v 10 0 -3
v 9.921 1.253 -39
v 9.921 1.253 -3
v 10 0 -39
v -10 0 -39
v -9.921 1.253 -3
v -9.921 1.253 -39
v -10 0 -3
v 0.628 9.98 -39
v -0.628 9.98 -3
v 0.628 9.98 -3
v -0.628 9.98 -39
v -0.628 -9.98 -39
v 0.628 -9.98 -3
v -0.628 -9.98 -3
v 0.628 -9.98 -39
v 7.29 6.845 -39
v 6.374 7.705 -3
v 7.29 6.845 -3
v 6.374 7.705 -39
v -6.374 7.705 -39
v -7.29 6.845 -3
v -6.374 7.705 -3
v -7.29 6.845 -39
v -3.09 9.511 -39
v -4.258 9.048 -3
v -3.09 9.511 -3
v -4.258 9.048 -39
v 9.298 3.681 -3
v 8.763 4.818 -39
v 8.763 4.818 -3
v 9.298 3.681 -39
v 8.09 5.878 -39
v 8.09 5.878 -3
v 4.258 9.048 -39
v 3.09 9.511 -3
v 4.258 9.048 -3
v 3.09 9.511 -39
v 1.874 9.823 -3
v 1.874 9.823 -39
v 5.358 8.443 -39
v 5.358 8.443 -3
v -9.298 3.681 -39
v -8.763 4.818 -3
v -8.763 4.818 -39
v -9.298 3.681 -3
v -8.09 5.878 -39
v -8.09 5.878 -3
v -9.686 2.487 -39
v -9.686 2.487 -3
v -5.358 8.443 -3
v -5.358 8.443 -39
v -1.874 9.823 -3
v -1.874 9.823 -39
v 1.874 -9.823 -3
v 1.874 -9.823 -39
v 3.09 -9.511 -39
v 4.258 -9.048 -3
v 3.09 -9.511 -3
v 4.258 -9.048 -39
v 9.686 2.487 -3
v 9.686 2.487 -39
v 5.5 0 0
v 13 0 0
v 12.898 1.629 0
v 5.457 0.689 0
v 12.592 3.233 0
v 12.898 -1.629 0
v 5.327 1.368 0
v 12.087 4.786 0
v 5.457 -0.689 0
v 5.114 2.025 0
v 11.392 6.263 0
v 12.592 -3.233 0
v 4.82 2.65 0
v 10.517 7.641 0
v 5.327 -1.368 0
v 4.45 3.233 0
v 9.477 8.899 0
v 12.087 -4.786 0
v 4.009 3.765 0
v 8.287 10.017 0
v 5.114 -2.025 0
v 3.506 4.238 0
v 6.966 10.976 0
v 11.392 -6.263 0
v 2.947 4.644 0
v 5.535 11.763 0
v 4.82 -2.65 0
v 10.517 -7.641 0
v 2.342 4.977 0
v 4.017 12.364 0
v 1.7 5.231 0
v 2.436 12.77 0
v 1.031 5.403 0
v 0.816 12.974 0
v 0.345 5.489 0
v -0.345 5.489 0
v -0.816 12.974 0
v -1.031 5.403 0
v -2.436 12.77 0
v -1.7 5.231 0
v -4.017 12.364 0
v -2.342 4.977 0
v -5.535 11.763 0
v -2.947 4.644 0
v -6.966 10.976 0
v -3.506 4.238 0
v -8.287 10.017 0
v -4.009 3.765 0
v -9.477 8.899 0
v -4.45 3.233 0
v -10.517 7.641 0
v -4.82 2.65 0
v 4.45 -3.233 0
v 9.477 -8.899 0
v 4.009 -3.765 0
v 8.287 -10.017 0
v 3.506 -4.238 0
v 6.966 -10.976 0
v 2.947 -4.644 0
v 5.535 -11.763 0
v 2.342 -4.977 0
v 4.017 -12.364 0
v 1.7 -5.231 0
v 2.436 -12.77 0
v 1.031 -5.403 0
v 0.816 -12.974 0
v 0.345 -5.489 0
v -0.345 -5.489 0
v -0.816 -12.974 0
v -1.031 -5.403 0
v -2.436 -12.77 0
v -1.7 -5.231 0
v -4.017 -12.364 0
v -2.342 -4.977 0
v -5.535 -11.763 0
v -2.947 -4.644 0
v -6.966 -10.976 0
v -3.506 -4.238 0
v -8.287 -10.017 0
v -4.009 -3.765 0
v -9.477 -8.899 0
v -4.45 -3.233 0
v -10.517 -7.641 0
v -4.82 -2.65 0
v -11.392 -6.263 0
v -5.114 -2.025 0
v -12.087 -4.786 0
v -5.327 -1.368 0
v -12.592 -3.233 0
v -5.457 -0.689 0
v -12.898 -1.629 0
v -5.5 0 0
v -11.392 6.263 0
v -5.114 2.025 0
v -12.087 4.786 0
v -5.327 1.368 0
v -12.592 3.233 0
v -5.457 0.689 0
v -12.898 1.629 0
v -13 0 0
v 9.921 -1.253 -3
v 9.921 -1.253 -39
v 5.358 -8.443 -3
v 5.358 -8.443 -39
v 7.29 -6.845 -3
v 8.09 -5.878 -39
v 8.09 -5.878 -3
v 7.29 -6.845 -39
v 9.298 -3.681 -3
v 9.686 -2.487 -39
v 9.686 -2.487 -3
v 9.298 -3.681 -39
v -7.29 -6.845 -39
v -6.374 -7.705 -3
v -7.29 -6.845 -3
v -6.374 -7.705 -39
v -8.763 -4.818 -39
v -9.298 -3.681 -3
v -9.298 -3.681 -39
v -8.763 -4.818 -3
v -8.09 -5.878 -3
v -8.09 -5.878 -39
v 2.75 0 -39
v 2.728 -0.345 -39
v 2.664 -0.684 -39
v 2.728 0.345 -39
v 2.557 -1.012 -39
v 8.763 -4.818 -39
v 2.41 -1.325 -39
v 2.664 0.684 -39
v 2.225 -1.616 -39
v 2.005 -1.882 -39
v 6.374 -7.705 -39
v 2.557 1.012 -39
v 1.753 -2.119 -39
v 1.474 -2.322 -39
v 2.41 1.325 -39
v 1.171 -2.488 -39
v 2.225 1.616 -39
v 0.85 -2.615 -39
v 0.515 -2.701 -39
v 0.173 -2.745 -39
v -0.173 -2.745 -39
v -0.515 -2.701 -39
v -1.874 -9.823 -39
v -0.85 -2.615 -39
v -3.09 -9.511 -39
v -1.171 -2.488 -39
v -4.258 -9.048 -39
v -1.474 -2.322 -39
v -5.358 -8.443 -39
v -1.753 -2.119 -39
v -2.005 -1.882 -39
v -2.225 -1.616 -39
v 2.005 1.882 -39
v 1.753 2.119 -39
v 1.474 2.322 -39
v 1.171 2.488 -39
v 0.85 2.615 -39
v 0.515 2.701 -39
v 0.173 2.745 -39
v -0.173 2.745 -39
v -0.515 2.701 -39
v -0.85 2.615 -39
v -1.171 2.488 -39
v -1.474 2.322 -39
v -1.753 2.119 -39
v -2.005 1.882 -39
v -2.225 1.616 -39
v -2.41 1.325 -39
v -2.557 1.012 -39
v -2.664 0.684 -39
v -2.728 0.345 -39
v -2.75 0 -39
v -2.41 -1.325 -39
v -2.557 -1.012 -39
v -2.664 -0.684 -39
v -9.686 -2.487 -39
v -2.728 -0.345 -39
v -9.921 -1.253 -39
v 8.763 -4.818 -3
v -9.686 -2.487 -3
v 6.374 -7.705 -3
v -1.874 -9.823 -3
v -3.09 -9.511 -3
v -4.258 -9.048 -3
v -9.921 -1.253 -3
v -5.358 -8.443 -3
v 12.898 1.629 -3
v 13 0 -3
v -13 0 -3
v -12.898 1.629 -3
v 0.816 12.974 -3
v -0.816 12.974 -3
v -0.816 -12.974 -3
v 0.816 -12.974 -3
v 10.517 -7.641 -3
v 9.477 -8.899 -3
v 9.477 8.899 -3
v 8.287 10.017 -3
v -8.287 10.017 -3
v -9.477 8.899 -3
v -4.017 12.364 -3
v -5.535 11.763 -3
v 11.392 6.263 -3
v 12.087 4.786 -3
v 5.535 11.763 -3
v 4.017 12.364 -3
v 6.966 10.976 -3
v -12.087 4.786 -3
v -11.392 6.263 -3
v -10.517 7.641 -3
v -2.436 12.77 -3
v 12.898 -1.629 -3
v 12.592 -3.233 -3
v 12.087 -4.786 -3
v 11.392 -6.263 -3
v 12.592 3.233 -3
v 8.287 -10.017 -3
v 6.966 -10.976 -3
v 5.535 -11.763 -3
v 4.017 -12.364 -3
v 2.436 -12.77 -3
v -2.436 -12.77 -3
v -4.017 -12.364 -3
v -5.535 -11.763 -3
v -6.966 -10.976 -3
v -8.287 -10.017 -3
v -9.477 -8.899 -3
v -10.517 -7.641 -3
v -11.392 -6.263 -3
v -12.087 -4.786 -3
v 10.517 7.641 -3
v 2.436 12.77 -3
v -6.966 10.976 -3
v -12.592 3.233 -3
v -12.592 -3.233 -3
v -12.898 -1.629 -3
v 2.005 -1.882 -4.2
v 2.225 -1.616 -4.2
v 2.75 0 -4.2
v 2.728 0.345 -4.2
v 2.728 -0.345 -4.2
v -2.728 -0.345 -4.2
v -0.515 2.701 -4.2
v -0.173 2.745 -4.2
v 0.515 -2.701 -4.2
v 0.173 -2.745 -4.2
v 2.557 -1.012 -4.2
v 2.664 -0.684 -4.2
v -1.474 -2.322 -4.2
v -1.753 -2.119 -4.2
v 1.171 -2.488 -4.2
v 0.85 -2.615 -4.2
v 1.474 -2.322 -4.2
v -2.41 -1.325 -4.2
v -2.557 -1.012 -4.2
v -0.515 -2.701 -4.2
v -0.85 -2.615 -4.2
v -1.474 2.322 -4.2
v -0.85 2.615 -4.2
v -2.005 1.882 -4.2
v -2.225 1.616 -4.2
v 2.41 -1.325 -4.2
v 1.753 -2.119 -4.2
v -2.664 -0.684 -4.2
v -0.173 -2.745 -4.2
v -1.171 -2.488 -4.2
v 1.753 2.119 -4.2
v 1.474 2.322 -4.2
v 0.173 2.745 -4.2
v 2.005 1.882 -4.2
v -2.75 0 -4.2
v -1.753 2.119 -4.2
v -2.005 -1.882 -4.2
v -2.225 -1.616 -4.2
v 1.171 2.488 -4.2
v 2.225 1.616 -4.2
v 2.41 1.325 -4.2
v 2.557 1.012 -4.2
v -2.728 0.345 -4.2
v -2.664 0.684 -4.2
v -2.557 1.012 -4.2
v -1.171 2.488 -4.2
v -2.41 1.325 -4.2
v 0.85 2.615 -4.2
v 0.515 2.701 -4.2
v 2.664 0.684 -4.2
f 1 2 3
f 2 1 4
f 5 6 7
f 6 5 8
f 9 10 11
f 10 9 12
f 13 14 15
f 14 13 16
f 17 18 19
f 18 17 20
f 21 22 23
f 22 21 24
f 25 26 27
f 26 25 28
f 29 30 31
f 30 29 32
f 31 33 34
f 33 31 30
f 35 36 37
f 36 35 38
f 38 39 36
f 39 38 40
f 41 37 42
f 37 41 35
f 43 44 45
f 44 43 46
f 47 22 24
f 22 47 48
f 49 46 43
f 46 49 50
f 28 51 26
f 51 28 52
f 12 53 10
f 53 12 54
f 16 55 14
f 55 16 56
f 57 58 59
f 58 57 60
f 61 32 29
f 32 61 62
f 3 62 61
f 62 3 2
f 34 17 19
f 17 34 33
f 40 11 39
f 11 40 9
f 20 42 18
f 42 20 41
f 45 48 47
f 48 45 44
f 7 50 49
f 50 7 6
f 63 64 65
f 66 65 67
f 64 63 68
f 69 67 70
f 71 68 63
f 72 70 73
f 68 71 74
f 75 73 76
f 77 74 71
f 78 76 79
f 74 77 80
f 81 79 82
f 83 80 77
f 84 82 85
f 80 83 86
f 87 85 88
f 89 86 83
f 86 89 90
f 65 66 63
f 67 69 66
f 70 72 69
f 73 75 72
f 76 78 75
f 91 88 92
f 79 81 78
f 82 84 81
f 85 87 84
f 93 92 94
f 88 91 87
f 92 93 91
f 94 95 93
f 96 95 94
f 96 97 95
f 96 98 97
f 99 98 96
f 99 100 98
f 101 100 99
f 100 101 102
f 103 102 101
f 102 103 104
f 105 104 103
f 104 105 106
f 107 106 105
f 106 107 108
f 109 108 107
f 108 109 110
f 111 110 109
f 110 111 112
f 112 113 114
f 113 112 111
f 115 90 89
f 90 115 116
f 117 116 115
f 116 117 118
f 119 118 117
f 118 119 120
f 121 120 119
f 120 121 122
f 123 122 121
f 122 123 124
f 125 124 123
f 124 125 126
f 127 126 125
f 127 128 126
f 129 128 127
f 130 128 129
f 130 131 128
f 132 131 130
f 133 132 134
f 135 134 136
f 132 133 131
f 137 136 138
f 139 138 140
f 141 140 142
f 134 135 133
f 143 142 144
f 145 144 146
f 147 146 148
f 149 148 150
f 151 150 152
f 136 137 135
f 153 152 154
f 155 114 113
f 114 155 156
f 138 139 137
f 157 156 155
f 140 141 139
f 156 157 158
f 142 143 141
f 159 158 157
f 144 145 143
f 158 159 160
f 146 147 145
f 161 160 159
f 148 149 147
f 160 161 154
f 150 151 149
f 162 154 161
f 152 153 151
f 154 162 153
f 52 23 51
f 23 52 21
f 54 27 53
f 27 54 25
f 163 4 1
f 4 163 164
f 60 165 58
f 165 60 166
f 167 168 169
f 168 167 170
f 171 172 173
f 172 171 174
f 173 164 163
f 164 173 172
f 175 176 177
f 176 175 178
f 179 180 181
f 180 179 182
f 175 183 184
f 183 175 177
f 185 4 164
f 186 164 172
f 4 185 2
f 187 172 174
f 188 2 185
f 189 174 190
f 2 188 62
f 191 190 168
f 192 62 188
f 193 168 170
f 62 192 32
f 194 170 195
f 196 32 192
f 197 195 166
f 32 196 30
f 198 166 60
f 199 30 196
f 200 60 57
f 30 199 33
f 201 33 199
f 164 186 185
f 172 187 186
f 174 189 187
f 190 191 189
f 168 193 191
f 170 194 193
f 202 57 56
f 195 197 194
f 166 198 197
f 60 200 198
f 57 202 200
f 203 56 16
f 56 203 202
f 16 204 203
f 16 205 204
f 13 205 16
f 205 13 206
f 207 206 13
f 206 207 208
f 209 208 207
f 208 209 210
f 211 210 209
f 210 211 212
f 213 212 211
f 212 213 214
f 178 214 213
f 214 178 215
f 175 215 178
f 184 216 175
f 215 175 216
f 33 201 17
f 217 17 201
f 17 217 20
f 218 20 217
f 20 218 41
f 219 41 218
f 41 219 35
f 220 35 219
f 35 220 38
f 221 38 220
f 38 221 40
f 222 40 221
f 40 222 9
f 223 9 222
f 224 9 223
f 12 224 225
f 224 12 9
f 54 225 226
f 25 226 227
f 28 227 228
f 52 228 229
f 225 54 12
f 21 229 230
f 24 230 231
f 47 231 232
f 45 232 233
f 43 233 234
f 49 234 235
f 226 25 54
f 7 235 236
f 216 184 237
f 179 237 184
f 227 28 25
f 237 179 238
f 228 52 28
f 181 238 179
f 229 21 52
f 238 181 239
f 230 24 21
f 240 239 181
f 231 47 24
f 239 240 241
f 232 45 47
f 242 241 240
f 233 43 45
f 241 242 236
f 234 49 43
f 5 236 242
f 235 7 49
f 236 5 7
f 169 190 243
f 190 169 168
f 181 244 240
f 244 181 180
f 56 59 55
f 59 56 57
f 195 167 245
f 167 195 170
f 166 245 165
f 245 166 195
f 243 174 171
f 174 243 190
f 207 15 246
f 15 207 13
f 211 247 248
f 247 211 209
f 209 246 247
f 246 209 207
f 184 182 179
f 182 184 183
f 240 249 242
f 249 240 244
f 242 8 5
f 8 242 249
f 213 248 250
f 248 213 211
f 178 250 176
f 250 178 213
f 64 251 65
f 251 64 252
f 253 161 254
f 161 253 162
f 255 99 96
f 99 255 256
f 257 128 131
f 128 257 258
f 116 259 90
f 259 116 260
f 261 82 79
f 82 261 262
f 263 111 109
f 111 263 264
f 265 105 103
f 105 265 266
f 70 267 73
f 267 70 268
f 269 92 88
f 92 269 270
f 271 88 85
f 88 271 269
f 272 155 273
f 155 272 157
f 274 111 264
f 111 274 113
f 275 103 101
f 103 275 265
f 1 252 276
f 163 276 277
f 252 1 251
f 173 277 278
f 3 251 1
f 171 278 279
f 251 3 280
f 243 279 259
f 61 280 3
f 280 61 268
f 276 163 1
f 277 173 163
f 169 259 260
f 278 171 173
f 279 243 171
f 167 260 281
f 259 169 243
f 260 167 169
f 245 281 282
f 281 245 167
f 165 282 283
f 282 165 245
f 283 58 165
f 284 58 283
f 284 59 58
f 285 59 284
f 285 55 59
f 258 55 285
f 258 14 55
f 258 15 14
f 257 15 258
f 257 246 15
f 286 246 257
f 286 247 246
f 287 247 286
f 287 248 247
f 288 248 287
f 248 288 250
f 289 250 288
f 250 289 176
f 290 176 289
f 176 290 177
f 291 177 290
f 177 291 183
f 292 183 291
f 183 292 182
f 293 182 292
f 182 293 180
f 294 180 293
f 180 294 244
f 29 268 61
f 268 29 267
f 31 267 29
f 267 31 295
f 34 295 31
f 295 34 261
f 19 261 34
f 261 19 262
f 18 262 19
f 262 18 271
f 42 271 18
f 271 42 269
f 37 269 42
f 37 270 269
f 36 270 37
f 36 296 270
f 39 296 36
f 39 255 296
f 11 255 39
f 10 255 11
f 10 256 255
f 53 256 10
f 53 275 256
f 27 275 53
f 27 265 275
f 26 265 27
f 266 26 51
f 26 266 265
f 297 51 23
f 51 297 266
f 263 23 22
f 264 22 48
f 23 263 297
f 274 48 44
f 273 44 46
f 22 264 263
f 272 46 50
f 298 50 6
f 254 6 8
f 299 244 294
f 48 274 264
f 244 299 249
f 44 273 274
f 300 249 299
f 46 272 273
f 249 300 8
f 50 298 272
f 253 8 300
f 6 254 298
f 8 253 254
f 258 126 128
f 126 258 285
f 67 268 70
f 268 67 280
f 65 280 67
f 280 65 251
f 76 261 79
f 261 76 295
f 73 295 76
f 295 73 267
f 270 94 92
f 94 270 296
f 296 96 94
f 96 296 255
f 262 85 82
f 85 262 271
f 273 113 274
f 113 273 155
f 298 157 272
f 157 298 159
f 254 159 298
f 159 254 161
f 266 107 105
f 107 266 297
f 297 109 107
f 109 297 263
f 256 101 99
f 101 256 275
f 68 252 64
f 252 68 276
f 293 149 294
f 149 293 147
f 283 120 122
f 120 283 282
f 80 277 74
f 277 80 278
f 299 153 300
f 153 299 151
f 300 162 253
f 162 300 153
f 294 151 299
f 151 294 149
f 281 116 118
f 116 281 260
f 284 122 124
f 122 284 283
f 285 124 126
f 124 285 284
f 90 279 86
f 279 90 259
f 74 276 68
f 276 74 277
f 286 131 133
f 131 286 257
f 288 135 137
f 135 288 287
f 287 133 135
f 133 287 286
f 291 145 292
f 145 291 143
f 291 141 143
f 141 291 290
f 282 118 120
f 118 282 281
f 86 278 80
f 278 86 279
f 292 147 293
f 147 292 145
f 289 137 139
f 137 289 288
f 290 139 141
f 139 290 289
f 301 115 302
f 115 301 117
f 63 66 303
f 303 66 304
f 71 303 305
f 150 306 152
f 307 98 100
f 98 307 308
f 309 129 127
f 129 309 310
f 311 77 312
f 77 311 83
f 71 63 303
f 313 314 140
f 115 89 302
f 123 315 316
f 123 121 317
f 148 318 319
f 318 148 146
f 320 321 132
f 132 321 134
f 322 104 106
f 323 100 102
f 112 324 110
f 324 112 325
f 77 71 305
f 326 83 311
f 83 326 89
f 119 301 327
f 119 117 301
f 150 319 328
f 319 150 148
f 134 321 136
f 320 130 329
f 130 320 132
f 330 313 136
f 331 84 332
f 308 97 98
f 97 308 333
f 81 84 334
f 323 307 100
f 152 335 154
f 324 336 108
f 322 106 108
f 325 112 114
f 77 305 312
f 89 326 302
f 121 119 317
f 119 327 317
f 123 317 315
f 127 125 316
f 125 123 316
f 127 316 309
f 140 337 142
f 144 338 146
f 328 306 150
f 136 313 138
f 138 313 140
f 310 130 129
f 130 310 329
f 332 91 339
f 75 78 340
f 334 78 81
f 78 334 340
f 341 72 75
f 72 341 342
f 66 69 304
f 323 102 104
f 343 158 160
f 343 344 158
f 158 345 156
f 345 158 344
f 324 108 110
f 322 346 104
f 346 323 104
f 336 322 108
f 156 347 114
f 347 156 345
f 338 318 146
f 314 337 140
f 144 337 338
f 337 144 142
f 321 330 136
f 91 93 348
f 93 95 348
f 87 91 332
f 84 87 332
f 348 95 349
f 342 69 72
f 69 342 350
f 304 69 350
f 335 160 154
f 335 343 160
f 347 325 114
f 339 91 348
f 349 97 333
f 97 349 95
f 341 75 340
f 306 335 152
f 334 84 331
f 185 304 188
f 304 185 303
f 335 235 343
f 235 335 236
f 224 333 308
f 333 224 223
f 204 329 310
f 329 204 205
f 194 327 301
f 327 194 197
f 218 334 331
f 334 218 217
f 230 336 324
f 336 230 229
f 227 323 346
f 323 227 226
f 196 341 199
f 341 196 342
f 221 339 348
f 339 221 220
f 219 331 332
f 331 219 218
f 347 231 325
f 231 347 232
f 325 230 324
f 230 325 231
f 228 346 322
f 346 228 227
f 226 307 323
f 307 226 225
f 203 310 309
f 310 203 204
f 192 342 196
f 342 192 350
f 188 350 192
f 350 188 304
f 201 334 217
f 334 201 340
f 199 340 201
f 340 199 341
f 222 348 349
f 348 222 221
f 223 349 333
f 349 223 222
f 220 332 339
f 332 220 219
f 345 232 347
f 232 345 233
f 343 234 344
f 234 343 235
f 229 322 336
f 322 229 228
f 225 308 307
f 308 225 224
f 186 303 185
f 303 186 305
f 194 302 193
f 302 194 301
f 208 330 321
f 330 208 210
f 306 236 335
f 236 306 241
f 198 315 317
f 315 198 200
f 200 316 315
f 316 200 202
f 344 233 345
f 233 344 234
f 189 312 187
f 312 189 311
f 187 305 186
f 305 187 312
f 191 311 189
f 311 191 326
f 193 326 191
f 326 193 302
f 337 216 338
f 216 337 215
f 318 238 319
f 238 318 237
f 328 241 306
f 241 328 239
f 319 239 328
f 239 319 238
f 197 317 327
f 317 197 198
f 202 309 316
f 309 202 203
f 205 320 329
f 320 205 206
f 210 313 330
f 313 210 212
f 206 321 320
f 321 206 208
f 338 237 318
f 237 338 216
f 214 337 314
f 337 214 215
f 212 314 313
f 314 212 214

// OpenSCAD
$fn = 50;


difference() {
	union() {
		translate(v = [0, 0, -39.0000000000]) {
			cylinder(h = 39, r = 10.0000000000);
		}
		translate(v = [0, 0, -3.0000000000]) {
			cylinder(h = 3, r = 13.0000000000);
		}
	}
	union() {
		translate(v = [0, 0, 0]) {
			rotate(a = [0, 0, 0]) {
				difference() {
					union() {
						#translate(v = [0, 0, -39.0000000000]) {
							cylinder(h = 39, r = 2.2500000000);
						}
						#translate(v = [0, 0, -4.2000000000]) {
							cylinder(h = 4.2000000000, r = 10.0000000000, r1 = 2.7500000000, r2 = 5.5000000000);
						}
						#translate(v = [0, 0, -39.0000000000]) {
							cylinder(h = 39, r = 2.7500000000);
						}
						#translate(v = [0, 0, -39.0000000000]) {
							cylinder(h = 39, r = 2.2500000000);
						}
					}
					union();
				}
			}
		}
	}
}
